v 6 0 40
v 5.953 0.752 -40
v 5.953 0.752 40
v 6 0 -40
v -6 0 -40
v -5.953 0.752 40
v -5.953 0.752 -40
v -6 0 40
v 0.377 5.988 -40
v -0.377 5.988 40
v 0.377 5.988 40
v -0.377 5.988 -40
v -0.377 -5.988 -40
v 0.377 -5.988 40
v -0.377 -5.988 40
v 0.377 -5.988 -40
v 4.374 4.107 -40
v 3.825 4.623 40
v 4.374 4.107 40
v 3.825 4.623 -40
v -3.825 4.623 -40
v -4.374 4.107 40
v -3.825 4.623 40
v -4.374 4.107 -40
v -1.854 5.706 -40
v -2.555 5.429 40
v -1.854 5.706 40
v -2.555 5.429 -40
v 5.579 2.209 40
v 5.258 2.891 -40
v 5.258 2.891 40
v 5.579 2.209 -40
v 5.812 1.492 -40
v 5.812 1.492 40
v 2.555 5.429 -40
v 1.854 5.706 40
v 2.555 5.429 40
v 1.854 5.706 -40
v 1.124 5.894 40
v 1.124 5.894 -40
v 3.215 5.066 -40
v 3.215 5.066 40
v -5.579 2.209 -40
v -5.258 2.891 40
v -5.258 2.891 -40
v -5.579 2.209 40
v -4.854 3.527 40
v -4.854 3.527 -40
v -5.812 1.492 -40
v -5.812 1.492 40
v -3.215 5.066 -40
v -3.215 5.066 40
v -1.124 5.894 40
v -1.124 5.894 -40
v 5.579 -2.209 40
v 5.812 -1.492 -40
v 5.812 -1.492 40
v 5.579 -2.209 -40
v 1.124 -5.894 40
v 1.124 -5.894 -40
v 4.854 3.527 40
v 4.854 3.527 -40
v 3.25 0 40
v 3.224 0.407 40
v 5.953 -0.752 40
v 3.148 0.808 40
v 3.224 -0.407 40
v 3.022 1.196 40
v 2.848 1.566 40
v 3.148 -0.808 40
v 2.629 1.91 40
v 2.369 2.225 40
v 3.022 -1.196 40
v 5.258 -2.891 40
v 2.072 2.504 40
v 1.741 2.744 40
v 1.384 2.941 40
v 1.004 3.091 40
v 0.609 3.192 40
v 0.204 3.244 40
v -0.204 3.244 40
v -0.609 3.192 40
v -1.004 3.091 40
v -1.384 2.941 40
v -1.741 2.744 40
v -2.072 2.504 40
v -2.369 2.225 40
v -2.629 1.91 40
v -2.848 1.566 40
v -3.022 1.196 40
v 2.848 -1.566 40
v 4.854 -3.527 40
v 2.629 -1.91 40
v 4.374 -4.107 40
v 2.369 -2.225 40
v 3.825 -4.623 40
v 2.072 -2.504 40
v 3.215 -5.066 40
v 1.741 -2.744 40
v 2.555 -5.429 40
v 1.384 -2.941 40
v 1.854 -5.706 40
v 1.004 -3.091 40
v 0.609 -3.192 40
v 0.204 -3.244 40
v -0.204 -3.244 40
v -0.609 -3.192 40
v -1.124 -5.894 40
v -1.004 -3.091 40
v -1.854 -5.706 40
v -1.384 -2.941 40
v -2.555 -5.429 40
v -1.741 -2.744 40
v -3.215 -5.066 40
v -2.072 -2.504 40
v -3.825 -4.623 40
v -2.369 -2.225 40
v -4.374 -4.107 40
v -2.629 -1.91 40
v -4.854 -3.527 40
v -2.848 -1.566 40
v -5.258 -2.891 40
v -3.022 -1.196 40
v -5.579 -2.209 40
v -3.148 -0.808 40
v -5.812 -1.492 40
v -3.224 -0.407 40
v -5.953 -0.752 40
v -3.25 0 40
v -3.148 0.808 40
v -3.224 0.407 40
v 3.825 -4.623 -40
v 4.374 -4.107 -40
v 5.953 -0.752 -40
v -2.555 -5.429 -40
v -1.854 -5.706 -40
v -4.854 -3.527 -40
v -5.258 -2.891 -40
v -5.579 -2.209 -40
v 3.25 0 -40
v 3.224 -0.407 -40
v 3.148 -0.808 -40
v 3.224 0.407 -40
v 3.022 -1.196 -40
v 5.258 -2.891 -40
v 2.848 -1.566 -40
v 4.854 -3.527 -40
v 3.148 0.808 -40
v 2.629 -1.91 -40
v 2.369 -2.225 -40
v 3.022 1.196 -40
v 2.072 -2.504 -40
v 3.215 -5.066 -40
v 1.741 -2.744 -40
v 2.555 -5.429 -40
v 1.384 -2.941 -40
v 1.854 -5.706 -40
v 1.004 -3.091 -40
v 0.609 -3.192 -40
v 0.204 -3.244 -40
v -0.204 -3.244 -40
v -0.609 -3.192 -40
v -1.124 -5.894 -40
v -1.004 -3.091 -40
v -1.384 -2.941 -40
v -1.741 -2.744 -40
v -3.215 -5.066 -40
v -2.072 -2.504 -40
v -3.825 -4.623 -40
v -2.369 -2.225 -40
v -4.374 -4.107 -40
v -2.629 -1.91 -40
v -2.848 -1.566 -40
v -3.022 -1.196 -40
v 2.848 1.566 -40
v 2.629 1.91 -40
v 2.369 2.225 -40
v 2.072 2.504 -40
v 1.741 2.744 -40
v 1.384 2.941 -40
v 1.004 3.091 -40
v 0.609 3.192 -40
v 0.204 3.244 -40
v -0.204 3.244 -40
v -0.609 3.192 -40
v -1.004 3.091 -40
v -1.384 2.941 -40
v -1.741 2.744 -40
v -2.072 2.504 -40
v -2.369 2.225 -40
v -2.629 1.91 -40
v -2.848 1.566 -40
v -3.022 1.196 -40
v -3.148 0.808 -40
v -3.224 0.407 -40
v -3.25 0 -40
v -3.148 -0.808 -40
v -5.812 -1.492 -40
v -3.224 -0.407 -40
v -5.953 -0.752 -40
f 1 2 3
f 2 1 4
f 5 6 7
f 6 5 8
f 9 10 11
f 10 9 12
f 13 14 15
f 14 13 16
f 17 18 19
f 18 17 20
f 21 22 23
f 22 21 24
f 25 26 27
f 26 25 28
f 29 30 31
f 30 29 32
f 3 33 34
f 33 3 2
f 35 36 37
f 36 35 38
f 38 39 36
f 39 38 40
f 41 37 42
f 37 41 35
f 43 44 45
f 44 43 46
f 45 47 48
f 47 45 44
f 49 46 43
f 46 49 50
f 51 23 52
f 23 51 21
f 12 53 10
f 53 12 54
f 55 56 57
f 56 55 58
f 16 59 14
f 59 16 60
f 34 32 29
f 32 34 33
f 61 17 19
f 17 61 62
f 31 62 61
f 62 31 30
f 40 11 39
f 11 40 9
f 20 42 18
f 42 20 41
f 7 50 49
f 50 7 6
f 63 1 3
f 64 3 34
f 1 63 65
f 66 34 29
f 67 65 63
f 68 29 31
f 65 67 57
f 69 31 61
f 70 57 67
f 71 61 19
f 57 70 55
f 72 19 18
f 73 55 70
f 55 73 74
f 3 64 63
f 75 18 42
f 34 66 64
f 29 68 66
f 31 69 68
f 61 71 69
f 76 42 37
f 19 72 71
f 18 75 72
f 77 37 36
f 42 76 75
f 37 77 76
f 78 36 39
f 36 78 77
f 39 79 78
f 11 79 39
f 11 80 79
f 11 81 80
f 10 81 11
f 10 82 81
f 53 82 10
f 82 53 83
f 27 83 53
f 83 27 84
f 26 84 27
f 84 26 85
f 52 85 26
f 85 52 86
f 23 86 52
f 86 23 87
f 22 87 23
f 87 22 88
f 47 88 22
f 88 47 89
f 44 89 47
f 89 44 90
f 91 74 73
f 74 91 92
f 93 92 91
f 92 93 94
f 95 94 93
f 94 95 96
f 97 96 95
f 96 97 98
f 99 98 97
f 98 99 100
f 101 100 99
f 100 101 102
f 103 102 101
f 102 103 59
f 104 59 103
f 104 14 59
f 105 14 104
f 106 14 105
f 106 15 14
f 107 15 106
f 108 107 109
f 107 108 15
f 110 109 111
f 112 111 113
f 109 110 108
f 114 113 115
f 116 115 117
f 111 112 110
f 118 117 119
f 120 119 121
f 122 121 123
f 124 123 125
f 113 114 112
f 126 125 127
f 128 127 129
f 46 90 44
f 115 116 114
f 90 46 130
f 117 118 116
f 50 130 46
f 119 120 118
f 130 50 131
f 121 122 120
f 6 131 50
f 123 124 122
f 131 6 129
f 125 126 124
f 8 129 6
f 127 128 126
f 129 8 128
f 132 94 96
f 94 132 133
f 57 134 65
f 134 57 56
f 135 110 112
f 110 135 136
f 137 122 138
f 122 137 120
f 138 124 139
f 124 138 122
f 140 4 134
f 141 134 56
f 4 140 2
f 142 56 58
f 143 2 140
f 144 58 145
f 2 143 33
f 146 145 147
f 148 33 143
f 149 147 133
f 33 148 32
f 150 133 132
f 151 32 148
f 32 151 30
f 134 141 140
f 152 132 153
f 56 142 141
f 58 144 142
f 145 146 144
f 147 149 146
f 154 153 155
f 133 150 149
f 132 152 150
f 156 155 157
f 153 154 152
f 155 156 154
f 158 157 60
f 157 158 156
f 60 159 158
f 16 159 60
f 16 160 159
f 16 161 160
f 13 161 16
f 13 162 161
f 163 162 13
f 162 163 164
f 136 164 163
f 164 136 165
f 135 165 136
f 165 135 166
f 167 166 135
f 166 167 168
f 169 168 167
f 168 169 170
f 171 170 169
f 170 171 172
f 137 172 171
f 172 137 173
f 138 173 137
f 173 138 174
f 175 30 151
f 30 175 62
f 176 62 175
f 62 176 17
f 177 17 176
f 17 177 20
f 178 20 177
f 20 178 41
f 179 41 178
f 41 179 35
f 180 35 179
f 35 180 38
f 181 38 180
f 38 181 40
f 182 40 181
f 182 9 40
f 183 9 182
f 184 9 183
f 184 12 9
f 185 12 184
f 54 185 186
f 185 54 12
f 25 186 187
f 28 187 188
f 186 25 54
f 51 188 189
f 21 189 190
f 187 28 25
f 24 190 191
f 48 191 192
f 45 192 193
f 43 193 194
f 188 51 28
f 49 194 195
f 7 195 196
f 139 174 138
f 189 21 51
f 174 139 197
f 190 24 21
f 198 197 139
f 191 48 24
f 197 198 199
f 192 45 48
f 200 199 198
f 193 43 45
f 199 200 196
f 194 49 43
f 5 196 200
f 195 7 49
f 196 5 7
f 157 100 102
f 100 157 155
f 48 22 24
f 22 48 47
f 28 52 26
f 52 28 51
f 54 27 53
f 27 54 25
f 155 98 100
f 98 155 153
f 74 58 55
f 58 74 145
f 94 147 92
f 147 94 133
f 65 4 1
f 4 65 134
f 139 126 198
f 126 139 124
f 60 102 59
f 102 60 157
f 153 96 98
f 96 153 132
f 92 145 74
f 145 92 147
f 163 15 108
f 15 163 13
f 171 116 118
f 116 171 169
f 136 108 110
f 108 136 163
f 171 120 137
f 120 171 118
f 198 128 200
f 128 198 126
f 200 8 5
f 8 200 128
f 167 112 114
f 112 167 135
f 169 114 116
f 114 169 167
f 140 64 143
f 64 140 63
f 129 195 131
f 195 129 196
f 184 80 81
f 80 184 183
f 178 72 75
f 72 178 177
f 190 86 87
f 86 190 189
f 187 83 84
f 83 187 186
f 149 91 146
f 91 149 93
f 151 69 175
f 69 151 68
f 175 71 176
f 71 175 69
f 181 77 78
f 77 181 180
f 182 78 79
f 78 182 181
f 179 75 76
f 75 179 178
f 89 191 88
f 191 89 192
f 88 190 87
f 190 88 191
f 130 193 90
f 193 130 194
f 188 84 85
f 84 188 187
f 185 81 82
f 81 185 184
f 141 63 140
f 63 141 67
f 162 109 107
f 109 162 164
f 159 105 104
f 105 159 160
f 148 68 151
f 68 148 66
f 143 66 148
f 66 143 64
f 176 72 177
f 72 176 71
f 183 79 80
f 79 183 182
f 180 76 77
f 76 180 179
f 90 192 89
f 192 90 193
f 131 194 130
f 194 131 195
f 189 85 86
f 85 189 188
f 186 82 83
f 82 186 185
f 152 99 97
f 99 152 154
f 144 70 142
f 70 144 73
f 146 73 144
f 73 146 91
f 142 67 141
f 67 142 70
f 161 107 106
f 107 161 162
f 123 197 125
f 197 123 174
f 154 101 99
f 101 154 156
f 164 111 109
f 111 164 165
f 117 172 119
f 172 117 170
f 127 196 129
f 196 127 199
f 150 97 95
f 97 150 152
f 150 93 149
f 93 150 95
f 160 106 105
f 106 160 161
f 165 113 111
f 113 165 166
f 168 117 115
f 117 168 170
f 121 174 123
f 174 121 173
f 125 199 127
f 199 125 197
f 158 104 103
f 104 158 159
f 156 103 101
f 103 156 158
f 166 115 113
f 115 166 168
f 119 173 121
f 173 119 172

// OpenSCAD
$fn = 50;


difference() {
	union() {
		translate(v = [0, 0, -40.0000000000]) {
			cylinder(h = 80, r = 6.0000000000);
		}
	}
	union() {
		translate(v = [0, 0, -100.0000000000]) {
			cylinder(h = 200, r = 3.2500000000);
		}
	}
}
